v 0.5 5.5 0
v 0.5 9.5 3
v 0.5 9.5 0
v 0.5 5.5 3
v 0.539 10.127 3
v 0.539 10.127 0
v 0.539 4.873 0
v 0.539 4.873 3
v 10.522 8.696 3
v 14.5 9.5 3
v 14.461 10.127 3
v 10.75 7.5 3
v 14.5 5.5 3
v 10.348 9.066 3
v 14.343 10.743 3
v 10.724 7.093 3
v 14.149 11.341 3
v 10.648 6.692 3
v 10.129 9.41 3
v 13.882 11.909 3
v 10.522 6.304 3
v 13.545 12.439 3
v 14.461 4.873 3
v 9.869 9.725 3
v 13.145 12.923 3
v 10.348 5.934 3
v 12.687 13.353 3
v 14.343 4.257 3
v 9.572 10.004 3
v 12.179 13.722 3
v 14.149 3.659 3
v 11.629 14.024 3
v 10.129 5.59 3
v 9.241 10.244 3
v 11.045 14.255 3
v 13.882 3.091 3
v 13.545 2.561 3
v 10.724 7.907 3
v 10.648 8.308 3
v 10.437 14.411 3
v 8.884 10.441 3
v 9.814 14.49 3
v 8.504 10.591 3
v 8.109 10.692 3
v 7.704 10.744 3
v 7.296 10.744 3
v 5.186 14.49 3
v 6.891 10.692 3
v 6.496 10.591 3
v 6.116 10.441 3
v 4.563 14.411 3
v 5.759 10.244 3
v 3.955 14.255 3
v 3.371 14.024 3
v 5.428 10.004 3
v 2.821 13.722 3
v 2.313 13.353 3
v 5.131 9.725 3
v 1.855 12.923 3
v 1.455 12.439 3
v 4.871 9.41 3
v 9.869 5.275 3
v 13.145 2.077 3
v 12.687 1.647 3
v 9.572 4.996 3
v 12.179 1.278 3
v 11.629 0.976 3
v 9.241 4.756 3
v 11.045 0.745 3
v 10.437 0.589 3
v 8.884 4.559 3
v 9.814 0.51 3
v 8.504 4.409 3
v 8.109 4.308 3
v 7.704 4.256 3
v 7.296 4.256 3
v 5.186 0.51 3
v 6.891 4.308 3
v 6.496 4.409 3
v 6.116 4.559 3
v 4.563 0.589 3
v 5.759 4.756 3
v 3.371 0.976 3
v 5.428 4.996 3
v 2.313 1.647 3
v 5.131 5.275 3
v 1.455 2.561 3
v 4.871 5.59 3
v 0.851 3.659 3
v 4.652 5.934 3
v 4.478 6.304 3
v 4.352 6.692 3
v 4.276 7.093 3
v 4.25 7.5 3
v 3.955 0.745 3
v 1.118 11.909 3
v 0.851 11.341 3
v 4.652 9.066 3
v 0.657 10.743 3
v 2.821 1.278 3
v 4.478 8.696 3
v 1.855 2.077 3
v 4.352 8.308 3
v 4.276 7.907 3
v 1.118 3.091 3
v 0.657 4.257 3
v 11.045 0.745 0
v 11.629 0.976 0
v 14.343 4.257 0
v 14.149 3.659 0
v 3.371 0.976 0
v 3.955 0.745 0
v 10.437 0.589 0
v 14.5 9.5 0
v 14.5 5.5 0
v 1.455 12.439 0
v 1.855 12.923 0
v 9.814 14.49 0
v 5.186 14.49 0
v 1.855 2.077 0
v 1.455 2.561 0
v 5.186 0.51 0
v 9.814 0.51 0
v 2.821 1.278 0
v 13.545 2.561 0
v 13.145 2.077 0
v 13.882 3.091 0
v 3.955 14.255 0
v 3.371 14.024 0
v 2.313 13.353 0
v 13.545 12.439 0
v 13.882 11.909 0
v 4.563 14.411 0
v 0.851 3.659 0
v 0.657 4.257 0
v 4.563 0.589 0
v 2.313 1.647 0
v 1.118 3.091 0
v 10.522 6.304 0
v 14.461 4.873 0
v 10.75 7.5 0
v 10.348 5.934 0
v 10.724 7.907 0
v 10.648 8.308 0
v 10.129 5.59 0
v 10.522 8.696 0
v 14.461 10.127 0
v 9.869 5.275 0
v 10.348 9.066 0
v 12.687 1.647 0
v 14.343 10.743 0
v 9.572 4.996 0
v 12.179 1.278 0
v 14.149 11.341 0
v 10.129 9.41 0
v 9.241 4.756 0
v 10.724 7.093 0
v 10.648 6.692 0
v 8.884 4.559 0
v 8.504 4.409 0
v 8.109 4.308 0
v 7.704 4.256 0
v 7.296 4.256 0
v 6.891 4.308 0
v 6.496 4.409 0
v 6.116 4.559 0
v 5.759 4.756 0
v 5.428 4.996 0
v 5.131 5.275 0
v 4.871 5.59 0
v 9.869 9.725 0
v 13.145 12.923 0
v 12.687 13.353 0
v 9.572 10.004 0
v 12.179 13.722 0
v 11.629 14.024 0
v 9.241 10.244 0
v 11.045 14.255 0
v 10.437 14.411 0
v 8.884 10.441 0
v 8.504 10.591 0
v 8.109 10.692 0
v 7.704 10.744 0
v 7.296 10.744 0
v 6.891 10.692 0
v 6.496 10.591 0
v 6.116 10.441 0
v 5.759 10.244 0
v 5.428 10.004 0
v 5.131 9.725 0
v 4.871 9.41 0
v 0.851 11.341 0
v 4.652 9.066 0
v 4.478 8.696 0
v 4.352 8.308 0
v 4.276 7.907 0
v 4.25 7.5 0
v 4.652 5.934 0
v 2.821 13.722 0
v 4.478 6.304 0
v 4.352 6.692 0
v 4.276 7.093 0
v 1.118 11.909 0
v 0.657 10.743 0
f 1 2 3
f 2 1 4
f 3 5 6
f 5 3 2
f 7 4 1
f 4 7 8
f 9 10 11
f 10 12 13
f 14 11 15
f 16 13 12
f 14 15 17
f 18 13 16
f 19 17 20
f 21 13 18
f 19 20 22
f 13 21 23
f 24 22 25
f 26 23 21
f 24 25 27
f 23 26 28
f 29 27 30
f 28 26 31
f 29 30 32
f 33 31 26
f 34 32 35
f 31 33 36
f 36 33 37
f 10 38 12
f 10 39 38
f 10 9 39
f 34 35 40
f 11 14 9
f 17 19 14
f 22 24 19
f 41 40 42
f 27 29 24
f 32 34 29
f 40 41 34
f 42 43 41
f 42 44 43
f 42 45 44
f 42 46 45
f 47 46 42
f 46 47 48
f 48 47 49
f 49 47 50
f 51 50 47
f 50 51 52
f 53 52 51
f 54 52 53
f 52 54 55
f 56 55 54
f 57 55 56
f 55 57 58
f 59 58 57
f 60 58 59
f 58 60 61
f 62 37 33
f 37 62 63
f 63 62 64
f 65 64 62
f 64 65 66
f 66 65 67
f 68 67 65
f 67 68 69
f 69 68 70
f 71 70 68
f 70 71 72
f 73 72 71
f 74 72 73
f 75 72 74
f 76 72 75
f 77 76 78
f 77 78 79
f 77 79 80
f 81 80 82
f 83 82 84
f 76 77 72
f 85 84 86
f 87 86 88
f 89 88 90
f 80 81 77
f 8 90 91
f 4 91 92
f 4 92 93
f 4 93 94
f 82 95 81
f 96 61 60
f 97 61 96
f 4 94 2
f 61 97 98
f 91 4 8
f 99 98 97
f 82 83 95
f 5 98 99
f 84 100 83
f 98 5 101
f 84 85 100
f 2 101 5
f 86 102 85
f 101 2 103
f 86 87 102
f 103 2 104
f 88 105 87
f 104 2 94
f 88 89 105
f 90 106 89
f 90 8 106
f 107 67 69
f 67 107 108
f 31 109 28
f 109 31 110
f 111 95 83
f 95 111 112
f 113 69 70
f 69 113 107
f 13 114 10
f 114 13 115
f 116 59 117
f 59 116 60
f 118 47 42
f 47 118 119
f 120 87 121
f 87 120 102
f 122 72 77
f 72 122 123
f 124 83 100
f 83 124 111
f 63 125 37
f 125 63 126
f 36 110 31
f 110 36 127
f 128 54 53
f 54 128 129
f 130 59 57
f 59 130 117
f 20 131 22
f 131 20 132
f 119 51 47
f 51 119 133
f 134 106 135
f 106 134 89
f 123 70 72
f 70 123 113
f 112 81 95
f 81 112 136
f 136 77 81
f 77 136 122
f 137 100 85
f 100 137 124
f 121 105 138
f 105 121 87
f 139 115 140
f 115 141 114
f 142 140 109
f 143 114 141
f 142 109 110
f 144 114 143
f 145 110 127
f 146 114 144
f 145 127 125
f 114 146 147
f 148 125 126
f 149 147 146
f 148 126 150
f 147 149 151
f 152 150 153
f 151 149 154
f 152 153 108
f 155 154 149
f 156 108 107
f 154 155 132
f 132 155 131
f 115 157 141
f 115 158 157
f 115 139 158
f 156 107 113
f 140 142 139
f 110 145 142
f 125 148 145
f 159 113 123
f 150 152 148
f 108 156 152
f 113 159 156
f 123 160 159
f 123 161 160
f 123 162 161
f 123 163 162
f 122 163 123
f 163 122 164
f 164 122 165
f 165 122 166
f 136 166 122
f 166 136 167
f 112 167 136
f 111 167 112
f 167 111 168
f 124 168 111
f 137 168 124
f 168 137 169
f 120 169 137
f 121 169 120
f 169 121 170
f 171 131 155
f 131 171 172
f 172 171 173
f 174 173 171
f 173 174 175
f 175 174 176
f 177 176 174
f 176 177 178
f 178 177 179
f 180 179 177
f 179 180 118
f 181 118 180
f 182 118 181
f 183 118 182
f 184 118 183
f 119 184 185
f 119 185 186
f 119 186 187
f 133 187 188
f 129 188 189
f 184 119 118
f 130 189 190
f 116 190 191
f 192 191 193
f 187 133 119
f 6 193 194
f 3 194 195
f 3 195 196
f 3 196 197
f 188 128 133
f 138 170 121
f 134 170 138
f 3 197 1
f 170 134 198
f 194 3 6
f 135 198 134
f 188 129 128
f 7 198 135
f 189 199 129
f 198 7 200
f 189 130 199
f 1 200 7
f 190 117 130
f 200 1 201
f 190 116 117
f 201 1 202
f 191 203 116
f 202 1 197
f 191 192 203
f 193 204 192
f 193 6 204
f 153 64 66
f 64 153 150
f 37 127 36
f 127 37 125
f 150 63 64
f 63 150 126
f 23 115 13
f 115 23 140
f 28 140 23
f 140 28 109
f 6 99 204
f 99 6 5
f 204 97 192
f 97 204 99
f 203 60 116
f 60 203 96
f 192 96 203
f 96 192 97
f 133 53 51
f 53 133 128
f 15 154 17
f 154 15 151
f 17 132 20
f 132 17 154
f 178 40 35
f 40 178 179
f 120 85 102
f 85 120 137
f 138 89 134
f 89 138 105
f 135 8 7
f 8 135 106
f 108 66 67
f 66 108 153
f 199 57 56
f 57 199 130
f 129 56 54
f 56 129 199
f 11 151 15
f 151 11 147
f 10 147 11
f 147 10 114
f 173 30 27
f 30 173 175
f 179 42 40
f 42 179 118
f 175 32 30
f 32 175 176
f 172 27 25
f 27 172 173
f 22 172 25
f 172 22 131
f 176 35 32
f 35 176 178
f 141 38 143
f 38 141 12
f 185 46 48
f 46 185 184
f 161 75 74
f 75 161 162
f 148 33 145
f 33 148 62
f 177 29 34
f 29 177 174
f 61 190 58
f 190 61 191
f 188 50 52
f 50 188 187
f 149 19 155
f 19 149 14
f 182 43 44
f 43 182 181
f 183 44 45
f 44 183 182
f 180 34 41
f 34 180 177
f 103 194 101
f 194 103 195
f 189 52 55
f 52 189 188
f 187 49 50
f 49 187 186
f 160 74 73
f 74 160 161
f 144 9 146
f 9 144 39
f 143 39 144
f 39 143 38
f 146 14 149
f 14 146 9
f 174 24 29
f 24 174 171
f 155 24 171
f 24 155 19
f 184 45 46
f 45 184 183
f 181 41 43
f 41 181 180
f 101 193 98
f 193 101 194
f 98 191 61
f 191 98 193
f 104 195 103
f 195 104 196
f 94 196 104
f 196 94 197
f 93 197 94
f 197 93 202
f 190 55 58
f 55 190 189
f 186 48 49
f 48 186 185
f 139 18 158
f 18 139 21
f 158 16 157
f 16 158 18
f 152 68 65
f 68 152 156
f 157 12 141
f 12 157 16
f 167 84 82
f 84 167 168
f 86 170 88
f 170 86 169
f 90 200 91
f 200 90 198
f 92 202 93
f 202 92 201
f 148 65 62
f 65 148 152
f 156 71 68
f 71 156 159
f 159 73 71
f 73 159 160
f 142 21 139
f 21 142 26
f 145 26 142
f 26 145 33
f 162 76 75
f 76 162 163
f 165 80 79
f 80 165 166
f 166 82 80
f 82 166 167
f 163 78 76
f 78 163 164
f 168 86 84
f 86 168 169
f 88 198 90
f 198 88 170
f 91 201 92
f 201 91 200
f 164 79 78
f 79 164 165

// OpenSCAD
// Generated by SolidPython 1.1.3 on 2023-01-30 13:24:34
$fn = 50;


difference() {
	union() {
		translate(v = [7.5000000000, 7.5000000000, 0]) {
			rotate(a = [0, 0, 0]) {
				hull() {
					translate(v = [-2.0000000000, 2.0000000000, 0]) {
						rotate(a = [0, 0, 0]) {
							translate(v = [0, 0, 0]) {
								rotate(a = [0, 0, 0]) {
									cylinder(h = 3, r = 5);
								}
							}
						}
					}
					translate(v = [2.0000000000, 2.0000000000, 0]) {
						rotate(a = [0, 0, 0]) {
							translate(v = [0, 0, 0]) {
								rotate(a = [0, 0, 0]) {
									cylinder(h = 3, r = 5);
								}
							}
						}
					}
					translate(v = [-2.0000000000, -2.0000000000, 0]) {
						rotate(a = [0, 0, 0]) {
							translate(v = [0, 0, 0]) {
								rotate(a = [0, 0, 0]) {
									cylinder(h = 3, r = 5);
								}
							}
						}
					}
					translate(v = [2.0000000000, -2.0000000000, 0]) {
						rotate(a = [0, 0, 0]) {
							translate(v = [0, 0, 0]) {
								rotate(a = [0, 0, 0]) {
									cylinder(h = 3, r = 5);
								}
							}
						}
					}
				}
			}
		}
	}
	union() {
		translate(v = [7.5000000000, 7.5000000000, 0]) {
			rotate(a = [0, 0, 0]) {
				translate(v = [0, 0, -50]) {
					rotate(a = [0, 0, 0]) {
						cylinder(h = 100, r = 3.2500000000);
					}
				}
			}
		}
	}
}
/***********************************************
*********      SolidPython code:      **********
************************************************
 
from solid import *
import os
import subprocess

import oomB

import opsc_library_gen

mode = "laser"
#mode = "3d_print"

defined_objects = {}

radius_dict = {}
countersunk_dict = {}


def set_mode(m):
    global mode
    mode = m
    radius_dict['M6'] = 6.5/2
    radius_dict['M3'] = 3.3/2
    if mode == "laser":
        radius_dict['M6'] = 6/2
        radius_dict['M3'] = 3/2

    countersunk_dict['M3'] = {}
    countersunk_dict['M3']['little_rad'] = radius_dict['M3']
    countersunk_dict['M3']['big_rad'] = (5.5+0.6)/2
    if mode == "laser":
        countersunk_dict['M3']['big_rad'] = (4.75+0.6)/2
        countersunk_dict['M3']['little_rad'] = (4.75+0.6)/2

    countersunk_dict['M3']['height'] = 1.7


def opsc_make_object(filename, objects, save_type="none",resolution=50, layers = 1, tilediff = 200, mode="laser"):
    set_mode(mode)
    save_type = save_type.lower()
    os.makedirs(os.path.dirname(filename), exist_ok=True)
    final_object = opsc_get_object(objects)
    # Save the final object to the specified filename    
    scad_render_to_file(final_object, filename, file_header='$fn = %s;' % resolution, include_orig_code=True)
    if mode == "laser":
        filename_laser = filename.replace(".scad","-flat.scad")
        scad_render_to_file(getLaser(final_object, layers=layers, tilediff=tilediff), filename_laser, file_header='$fn = %s;' % resolution, include_orig_code=True)
        if save_type == "all":
            saveToAll(filename_laser)
        elif save_type == "dxf":
            saveToDxf(filename_laser)
    if save_type == "all":
        saveToAll(filename)
    elif save_type == "dxf":
        saveToDxf(filename)


def opsc_get_object(objects):
    # Create the solidpython objects
    positive_objects = [get_opsc_item(obj) for obj in objects if obj['type'] == 'positive']
    negative_objects = [get_opsc_item(obj) for obj in objects if obj['type'] == 'negative']
    # Union the positive objects
    positive_object = union()(*positive_objects)
    # Union the negative objects
    negative_object = union()(*negative_objects)
    # Create the final object by subtracting the negative objects from the positive objects
    return difference()(positive_object, negative_object)

def get_opsc_item(params):
    # A dictionary to map radius string values to numerical values
    #radius_dict = {'small': 5, 'medium': 10, 'large': 15}
    # An array of function names for basic shapes
    basic_shapes = ['cube', 'sphere', 'cylinder']
    
    # An array of function names for other shapes
    other_shapes = ['hole', 'slot', 'rounded_rectangle', 'countersunk']
    


    # Convert radius to r if present, and remove radius from the params dictionary
    if 'radius' in params:
        if isinstance(params['radius'], str):
            # Use the radius_dict to map the radius string value to a numerical value
            params['r'] = radius_dict[params['radius']]
        else:
            params['r'] = params['radius']
        del params['radius']
    

    # Check if the object type is a basic shape
    if params['shape'] in basic_shapes:
        # Remove shape and unexpected dictionary values
        allowed_keys = {'size', 'r', 'r1', 'r2', 'd', 'h', 'rw', 'rh', 'dw', 'dh'}
        shape_params = {k: v for k, v in params.items() if k in allowed_keys}

        # Call the corresponding function for the shape parameter, using ** notation to pass the shape_params dictionary as keyword arguments
        return get_opsc_transform(params,globals()[params['shape']](**shape_params))
    
    # If the object type is not a basic shape, check if it's a defined object or one of the other shapes
    elif params['shape'] in other_shapes:
        # Call the corresponding function for the shape parameter, passing the params dictionary as an argument
        p2 = copy.deepcopy(params)
        p2["pos"] = [0,0,0]
        return get_opsc_transform(params,globals()[params['shape']](p2))
    
    # If the object is not a basic shape or a defined object, try to import it from a .scad file
    else:
        obj = defined_objects[params['shape']]
        return get_opsc_transform(params,obj)

def get_opsc_transform(params, solid_obj):
    # Rotate the object based on the 'rot' field in the params dictionary, or the 'rotX', 'rotY', and 'rotZ' fields if 'rot' is not present
    rot = params.get('rot', [])
    if rot:
        rotX, rotY, rotZ = rot
    else:
        rotX = params.get('rotX', 0)
        rotY = params.get('rotY', 0)
        rotZ = params.get('rotZ', 0)
    solid_obj = rotate([rotX, rotY, rotZ])(solid_obj)

    # Translate the object based on the 'pos' field in the params dictionary, or the 'x', 'y', and 'z' fields if 'pos' is not present
    pos = params.get('pos', [])
    if pos:
        x, y, z = pos
    else:
        x = params.get('x', 0)
        y = params.get('y', 0)
        z = params.get('z', 0)
    solid_obj = translate([x, y, z])(solid_obj)
    return solid_obj


import random

def opsc_easy_array(type, shape, repeats, pos_start, shift_arr, **kwargs):
    for i in range(0,3):
        repeats.append(1)
        pos_start.append(0)
        shift_arr.append(0)
    return_objects = []

    for x in range(0,repeats[0]):
        for y in range(0,repeats[1]):
            for z in range(0,repeats[2]):
                return_objects.append(opsc_easy(type, shape, pos=[pos_start[0]+x*shift_arr[0],pos_start[1]+y*shift_arr[1],pos_start[2]+z*shift_arr[2]], **kwargs))
    return return_objects                



def opsc_easy(type, shape, **kwargs):
    obj = {
        'type': type,
        'shape': shape
    }
    for param in ['size', 'r', 'r1', 'r2', 'd', 'h', 'rw', 'rh', 'dw', 'dh', 'pos', 'x', 'y', 'z', 'rot', 'rotX', 'rotY', 'rotZ', "w"]:
        if param in kwargs:
            obj[param] = kwargs[param]
    return obj

def hole(params):
    p2 = copy.deepcopy(params)  
    # Check if the radius is a string and replace it with the corresponding value from the dictionary
    if isinstance(p2['r'], str):
        p2['r'] = radius_dict[p2['r']]
    
    # Set the height to 100 if not specified
    if 'h' not in p2:
        p2['h'] = 100
        p2["pos"] = [0,0,-50]
    p2["center"] = True
    # Create the cylinder object
    p2["shape"] = "cylinder"
    p2["type"] = "positive"

    return get_opsc_item(p2)

import copy

def countersunk(params):
    p2 = copy.deepcopy(params)
    counter_rad = p2['r']
    p2['r'] = radius_dict[p2['r']]
    hp = copy.deepcopy(p2)
    hp["type"] = "positive"
    hp["shape"] = "hole"
    del hp["rot"]
    hol = get_opsc_item(hp)
    
    cp = copy.deepcopy(p2)
    cp["h"] = countersunk_dict[counter_rad]["height"]
    cp["r2"] = countersunk_dict[counter_rad]["little_rad"]
    cp["r1"] = countersunk_dict[counter_rad]["big_rad"]
    del cp["r"]
    del cp["rot"]
    cp["type"] = "positive"
    cp["shape"] = "cylinder"
    cp["pos"] = [0,0,0]

    top = get_opsc_item(cp)
    return union()(hol,top)



def slot(params):  
    p2 = copy.deepcopy(params) 
    if isinstance(p2['r'], str):
        p2['r'] = radius_dict[p2['r']]
    p2["type"] = "positive"
    p2["shape"] = "hole"
    del p2["rot"]
    p2["pos"] = [0,0,0]
    left = copy.deepcopy(p2)
    right = copy.deepcopy(p2)
    left["pos"][0] = p2["w"] / 2 - p2["r"] 
    
    right["pos"][0] = -p2["w"] / 2 + p2["r"] 
    pass
    leftObj = get_opsc_item(left)
    rightObj = get_opsc_item(right)
    return hull()(leftObj, rightObj)

def rounded_rectangle(params):   
    p2 = copy.deepcopy(params) 
    p2["h"] = p2["size"][2]
    p2["pos"] = p2.get("pos", [0, 0, 0]) 
    p2["type"] = "positive"
    p2["shape"] = "hole"
    p2["pos"] = [0,0,0]
    
    if 'rot' in p2:
        del p2["rot"]   
    if 'r' not in p2:
        p2["r"] = 5 
    tl = copy.deepcopy(p2)
    tr = copy.deepcopy(p2)
    bl = copy.deepcopy(p2)
    br = copy.deepcopy(p2)
    tl["pos"][0] = -(p2["size"][0] - p2["r"]*2)/2
    tl["pos"][1] = (p2["size"][1] - p2["r"]*2)/2
    tr["pos"][0] = (p2["size"][0] - p2["r"]*2)/2
    tr["pos"][1] = (p2["size"][1] - p2["r"]*2)/2
    bl["pos"][0] = -(p2["size"][0] - p2["r"]*2)/2
    bl["pos"][1] = -(p2["size"][1] - p2["r"]*2)/2
    br["pos"][0] = (p2["size"][0] - p2["r"]*2)/2
    br["pos"][1] = -(p2["size"][1] - p2["r"]*2)/2
    del tl["size"]
    del tr["size"]
    del bl["size"]
    del br["size"]
    tlo = get_opsc_item(tl)
    tro = get_opsc_item(tr)
    blo = get_opsc_item(bl)
    bro = get_opsc_item(br)    
    return hull()(tlo, tro, blo, bro)



def import_scad_object(filename):
    # Import the .scad file and convert it to a solidpython object
    #filename = "parts"
    obj = import_scad(filename)
    return obj.main()
    


import os
import solid as solidpython

# A dictionary to store the defined objects


def load_scad_objects():
    opsc_library_gen.gen_library(defined_objects)

import random

def test(num_objects):
    objects = []
    for i in range(num_objects):
        # Choose a random shape
        #shape = random.choice(['cube', 'sphere', 'cylinder', 'hole', 'slot', "rounded_rectangle"])
        shape = random.choice(["rounded_rectangle"])

        # Choose a random type
        type = random.choice(['positive', 'negative'])
        
        # Create an empty object dictionary
        obj = {'shape': shape, 'type': type}
        
        # Set shape-specific parameters
        if obj['shape'] in ['cube']:
            obj['size'] =  [random.uniform(5, 15), random.uniform(5, 15), random.uniform(5, 15)]
        if obj['shape'] in ['rounded_rectangle']:
            obj['size'] =  [random.uniform(5, 15), random.uniform(5, 15), random.uniform(5, 15)]
            obj['r'] = random.uniform(0.5, 5)
        elif obj['shape'] == 'sphere':
            obj['r'] = random.uniform(5, 15)
        elif obj['shape'] in ['cylinder', 'hole']:
            obj['r'] = random.uniform(0.5, 5)
            obj['h'] = random.uniform(5, 15)
        elif obj['shape'] == 'slot':
            obj['r'] = random.uniform(0.5, 5)
            obj['h'] = random.uniform(5, 15)
            obj['w'] = random.uniform(5, 15)
        
        # Set a random position and rotation
        obj['pos'] = [random.uniform(-20, 20), random.uniform(-20, 20), random.uniform(-20, 20)]
        obj['rot'] = [random.uniform(-180, 180), random.uniform(-180, 180), random.uniform(-180, 180)]
        
        # Add the object to the list
        objects.append(obj)
    return objects

####### old file saving
def saveToAll(fileIn):
    saveToDxf(fileIn)
    saveToPng(fileIn)
    saveToStl(fileIn)
    saveToSvg(fileIn)

def saveToDxf(fileIn, fileOut="", copy_to_laser=True):
    if fileOut == "":
        fileOut = fileIn.replace(".scad",".dxf")
    saveToFile(fileIn, fileOut)


    
def saveToPng(fileIn, fileOut="",extra="--render"):
    if fileOut == "":
        fileOut = fileIn.replace(".scad",".png")
    saveToFile(fileIn, fileOut)

def saveToStl(fileIn, fileOut=""):
    if fileOut == "":
        fileOut = fileIn.replace(".scad",".stl")
    saveToFile(fileIn, fileOut)
    
def saveToSvg(fileIn, fileOut=""):
    if fileOut == "":
        fileOut = fileIn.replace(".scad",".svg")
    saveToFile(fileIn, fileOut)

def saveToFile(fileIn, fileOut,extra=""):
    #extra = extra + " --colorscheme Tomorrow"

    launchStr = 'openscad -o "' + fileOut + '"' + extra + ' "' + fileIn + '"'
    if ".png" in fileOut:
        launchStr = launchStr + " --render"
    print("            saveToFile launch string: " + launchStr)
    subprocess.run(launchStr)
    x=0

def getLaser(final_object,start=1.5,layers=1,thickness=3,tilediff=200):
        rv= []

        for x in range(layers):
            rv.append(translate([0,x*tilediff,0])(
                    projection()(
                        intersection()(translate([-500,-500,start+x*thickness])(cube(size=[1000,1000,0.1])),
                            final_object
                        )
                    )
            )
            )
            
        return union()(rv)

set_mode("laser")
load_scad_objects() 
 
************************************************/
